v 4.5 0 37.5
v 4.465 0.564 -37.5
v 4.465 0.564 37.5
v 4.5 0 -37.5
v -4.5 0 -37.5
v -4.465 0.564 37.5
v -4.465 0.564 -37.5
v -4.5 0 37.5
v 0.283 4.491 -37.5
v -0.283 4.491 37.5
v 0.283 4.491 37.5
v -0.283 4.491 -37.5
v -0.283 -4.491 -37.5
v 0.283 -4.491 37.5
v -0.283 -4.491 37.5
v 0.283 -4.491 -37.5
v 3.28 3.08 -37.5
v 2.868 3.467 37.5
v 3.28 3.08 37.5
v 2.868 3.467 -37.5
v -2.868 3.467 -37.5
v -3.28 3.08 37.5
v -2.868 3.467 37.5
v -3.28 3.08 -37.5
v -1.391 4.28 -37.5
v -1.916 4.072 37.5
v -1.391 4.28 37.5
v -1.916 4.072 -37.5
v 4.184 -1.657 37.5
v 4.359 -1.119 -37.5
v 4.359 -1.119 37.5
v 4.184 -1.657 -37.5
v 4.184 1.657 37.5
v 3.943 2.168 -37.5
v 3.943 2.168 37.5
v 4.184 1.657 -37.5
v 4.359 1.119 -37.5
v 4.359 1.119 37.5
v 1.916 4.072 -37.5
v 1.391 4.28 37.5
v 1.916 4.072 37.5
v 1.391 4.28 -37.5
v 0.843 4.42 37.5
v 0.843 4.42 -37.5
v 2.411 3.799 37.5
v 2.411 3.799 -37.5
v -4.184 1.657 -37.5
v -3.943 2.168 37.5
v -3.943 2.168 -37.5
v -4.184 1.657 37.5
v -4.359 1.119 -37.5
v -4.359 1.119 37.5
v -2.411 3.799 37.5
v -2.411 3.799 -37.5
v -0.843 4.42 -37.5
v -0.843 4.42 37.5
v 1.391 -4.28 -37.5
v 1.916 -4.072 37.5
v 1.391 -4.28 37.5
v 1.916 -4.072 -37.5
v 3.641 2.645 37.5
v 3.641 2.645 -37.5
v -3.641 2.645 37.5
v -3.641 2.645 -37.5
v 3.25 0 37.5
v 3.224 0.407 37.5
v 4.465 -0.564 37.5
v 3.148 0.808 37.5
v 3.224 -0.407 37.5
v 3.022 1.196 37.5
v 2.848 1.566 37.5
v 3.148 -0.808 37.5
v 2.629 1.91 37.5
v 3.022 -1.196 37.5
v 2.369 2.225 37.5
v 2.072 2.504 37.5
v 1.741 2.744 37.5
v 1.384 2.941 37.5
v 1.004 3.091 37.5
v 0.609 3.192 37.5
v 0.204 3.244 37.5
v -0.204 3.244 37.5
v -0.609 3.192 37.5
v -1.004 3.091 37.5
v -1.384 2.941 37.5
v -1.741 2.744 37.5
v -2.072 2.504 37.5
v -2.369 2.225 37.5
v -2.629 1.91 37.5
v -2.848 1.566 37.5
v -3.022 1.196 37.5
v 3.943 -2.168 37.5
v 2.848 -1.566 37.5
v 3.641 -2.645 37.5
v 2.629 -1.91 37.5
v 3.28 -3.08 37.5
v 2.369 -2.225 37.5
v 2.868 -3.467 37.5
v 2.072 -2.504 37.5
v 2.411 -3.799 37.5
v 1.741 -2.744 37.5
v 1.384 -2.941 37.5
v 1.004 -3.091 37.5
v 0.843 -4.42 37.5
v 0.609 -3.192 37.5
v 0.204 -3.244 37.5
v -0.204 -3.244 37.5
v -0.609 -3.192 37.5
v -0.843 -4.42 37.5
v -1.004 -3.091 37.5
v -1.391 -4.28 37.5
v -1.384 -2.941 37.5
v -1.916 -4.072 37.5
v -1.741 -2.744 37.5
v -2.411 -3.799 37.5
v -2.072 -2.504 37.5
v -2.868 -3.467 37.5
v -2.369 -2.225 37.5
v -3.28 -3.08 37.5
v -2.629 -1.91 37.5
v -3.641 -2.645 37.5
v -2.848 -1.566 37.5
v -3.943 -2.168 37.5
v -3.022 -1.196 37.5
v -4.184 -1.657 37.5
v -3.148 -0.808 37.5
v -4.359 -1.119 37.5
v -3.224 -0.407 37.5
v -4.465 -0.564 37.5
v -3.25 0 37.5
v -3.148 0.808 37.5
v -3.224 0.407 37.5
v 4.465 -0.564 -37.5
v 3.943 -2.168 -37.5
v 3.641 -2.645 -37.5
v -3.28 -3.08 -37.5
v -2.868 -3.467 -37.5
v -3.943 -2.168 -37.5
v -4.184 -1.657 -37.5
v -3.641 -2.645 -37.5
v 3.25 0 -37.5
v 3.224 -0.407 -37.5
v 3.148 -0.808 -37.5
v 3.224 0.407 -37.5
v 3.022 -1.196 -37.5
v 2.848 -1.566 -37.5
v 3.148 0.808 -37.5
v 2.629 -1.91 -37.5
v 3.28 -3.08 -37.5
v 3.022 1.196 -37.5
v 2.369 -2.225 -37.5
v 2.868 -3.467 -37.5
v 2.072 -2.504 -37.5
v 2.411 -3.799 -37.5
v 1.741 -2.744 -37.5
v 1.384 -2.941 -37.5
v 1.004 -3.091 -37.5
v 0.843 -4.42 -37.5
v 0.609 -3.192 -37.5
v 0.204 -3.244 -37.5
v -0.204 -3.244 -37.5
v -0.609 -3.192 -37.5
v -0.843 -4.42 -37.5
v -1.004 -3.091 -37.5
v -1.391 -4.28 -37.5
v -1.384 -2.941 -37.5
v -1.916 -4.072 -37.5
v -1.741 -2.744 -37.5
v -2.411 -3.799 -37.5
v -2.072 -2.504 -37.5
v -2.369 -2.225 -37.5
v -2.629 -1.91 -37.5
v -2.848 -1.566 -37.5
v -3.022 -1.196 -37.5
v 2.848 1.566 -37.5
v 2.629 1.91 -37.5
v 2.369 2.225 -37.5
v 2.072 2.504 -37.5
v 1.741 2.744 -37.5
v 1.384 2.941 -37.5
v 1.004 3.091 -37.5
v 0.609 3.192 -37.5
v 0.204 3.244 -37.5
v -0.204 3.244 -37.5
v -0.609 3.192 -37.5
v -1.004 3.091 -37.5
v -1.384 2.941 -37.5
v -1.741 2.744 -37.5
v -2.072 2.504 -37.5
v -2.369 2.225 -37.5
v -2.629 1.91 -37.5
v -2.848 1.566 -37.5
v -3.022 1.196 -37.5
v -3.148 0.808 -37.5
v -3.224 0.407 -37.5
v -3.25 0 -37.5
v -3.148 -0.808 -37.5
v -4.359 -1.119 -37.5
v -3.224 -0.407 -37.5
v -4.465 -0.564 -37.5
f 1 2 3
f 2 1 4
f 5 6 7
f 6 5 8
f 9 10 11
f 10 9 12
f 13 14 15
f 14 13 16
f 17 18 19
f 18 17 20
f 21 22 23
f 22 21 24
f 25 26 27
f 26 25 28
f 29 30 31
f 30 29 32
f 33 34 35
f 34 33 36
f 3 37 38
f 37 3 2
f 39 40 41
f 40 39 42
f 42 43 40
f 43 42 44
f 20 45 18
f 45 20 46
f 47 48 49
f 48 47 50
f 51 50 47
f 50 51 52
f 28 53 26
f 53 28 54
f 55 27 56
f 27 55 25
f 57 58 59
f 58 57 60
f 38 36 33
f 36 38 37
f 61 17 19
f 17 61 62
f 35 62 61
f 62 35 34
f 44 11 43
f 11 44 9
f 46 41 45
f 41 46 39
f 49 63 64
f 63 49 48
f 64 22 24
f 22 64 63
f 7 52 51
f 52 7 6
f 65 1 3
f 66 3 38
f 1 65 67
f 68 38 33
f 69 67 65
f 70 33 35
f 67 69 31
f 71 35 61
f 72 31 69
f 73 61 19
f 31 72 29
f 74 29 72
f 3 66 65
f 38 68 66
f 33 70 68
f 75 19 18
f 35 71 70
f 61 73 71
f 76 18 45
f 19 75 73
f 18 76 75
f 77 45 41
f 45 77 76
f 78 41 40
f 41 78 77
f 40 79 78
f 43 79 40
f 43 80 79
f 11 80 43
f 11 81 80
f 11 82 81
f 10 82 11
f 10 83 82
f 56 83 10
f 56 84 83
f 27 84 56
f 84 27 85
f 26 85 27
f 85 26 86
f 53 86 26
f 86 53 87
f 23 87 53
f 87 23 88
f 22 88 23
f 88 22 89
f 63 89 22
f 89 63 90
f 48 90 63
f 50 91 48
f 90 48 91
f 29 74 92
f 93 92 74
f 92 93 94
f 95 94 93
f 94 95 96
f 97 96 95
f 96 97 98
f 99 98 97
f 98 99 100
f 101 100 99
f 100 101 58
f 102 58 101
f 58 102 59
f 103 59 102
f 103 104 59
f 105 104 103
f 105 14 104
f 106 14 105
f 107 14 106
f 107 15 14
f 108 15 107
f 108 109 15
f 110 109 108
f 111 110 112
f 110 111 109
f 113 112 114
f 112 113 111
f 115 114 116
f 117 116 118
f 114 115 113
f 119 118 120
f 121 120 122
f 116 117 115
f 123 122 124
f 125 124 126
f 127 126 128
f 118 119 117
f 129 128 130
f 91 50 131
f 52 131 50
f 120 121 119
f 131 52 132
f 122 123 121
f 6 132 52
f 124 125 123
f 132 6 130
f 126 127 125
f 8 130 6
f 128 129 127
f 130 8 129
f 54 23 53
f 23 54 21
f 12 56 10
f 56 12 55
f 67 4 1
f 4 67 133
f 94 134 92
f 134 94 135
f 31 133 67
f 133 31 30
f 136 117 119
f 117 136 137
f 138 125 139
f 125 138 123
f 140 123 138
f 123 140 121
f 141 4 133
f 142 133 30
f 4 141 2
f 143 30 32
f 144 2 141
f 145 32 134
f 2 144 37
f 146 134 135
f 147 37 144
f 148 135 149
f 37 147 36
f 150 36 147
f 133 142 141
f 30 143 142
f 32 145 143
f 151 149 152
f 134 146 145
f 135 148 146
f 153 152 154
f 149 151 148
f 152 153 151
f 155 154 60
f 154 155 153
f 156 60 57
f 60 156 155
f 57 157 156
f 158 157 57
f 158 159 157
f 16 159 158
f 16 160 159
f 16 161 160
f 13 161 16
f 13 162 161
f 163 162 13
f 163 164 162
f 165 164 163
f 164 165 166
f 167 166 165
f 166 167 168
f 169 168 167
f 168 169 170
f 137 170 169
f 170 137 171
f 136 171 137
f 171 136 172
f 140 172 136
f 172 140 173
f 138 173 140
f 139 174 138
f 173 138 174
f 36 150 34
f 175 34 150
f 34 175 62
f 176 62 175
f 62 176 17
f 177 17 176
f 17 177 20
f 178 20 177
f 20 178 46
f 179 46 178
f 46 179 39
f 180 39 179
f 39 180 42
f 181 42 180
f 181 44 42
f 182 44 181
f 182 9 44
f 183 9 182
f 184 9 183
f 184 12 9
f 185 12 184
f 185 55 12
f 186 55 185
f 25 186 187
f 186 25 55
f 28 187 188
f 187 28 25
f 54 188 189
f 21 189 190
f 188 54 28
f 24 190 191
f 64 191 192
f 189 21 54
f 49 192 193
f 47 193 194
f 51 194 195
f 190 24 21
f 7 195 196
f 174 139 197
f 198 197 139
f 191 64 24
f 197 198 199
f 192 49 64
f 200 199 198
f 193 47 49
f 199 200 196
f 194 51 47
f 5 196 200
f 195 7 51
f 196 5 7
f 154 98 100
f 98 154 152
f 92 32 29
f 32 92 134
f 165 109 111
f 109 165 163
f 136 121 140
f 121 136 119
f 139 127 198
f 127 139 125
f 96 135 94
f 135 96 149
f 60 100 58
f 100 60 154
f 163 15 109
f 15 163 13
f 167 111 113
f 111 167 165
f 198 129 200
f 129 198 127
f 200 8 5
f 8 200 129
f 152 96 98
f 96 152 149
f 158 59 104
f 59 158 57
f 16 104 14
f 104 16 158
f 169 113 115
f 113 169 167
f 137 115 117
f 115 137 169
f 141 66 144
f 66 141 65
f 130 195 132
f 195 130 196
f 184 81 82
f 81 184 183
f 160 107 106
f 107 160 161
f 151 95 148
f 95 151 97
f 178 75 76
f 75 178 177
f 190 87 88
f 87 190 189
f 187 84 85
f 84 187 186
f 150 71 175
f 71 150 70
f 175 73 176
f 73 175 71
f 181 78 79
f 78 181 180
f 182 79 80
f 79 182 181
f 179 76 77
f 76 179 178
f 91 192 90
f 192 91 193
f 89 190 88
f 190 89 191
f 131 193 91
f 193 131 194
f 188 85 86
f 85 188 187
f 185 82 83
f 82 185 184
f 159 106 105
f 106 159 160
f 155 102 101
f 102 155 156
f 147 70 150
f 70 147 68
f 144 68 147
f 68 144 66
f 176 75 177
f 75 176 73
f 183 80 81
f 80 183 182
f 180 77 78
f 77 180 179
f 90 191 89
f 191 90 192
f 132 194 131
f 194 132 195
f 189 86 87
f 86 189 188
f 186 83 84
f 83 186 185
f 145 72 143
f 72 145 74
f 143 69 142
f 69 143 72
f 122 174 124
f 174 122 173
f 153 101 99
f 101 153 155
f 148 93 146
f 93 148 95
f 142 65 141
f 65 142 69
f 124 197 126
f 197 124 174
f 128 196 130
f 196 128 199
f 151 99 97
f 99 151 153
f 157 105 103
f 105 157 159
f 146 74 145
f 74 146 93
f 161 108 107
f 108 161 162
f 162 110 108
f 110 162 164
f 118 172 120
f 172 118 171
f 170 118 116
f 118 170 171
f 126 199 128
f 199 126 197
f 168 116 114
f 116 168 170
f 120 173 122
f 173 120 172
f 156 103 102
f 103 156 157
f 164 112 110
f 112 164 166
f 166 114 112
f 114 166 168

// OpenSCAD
$fn = 50;


difference() {
	union() {
		translate(v = [0, 0, -37.5000000000]) {
			cylinder(h = 75, r = 4.5000000000);
		}
	}
	union() {
		translate(v = [0, 0, -100.0000000000]) {
			cylinder(h = 200, r = 3.2500000000);
		}
	}
}
